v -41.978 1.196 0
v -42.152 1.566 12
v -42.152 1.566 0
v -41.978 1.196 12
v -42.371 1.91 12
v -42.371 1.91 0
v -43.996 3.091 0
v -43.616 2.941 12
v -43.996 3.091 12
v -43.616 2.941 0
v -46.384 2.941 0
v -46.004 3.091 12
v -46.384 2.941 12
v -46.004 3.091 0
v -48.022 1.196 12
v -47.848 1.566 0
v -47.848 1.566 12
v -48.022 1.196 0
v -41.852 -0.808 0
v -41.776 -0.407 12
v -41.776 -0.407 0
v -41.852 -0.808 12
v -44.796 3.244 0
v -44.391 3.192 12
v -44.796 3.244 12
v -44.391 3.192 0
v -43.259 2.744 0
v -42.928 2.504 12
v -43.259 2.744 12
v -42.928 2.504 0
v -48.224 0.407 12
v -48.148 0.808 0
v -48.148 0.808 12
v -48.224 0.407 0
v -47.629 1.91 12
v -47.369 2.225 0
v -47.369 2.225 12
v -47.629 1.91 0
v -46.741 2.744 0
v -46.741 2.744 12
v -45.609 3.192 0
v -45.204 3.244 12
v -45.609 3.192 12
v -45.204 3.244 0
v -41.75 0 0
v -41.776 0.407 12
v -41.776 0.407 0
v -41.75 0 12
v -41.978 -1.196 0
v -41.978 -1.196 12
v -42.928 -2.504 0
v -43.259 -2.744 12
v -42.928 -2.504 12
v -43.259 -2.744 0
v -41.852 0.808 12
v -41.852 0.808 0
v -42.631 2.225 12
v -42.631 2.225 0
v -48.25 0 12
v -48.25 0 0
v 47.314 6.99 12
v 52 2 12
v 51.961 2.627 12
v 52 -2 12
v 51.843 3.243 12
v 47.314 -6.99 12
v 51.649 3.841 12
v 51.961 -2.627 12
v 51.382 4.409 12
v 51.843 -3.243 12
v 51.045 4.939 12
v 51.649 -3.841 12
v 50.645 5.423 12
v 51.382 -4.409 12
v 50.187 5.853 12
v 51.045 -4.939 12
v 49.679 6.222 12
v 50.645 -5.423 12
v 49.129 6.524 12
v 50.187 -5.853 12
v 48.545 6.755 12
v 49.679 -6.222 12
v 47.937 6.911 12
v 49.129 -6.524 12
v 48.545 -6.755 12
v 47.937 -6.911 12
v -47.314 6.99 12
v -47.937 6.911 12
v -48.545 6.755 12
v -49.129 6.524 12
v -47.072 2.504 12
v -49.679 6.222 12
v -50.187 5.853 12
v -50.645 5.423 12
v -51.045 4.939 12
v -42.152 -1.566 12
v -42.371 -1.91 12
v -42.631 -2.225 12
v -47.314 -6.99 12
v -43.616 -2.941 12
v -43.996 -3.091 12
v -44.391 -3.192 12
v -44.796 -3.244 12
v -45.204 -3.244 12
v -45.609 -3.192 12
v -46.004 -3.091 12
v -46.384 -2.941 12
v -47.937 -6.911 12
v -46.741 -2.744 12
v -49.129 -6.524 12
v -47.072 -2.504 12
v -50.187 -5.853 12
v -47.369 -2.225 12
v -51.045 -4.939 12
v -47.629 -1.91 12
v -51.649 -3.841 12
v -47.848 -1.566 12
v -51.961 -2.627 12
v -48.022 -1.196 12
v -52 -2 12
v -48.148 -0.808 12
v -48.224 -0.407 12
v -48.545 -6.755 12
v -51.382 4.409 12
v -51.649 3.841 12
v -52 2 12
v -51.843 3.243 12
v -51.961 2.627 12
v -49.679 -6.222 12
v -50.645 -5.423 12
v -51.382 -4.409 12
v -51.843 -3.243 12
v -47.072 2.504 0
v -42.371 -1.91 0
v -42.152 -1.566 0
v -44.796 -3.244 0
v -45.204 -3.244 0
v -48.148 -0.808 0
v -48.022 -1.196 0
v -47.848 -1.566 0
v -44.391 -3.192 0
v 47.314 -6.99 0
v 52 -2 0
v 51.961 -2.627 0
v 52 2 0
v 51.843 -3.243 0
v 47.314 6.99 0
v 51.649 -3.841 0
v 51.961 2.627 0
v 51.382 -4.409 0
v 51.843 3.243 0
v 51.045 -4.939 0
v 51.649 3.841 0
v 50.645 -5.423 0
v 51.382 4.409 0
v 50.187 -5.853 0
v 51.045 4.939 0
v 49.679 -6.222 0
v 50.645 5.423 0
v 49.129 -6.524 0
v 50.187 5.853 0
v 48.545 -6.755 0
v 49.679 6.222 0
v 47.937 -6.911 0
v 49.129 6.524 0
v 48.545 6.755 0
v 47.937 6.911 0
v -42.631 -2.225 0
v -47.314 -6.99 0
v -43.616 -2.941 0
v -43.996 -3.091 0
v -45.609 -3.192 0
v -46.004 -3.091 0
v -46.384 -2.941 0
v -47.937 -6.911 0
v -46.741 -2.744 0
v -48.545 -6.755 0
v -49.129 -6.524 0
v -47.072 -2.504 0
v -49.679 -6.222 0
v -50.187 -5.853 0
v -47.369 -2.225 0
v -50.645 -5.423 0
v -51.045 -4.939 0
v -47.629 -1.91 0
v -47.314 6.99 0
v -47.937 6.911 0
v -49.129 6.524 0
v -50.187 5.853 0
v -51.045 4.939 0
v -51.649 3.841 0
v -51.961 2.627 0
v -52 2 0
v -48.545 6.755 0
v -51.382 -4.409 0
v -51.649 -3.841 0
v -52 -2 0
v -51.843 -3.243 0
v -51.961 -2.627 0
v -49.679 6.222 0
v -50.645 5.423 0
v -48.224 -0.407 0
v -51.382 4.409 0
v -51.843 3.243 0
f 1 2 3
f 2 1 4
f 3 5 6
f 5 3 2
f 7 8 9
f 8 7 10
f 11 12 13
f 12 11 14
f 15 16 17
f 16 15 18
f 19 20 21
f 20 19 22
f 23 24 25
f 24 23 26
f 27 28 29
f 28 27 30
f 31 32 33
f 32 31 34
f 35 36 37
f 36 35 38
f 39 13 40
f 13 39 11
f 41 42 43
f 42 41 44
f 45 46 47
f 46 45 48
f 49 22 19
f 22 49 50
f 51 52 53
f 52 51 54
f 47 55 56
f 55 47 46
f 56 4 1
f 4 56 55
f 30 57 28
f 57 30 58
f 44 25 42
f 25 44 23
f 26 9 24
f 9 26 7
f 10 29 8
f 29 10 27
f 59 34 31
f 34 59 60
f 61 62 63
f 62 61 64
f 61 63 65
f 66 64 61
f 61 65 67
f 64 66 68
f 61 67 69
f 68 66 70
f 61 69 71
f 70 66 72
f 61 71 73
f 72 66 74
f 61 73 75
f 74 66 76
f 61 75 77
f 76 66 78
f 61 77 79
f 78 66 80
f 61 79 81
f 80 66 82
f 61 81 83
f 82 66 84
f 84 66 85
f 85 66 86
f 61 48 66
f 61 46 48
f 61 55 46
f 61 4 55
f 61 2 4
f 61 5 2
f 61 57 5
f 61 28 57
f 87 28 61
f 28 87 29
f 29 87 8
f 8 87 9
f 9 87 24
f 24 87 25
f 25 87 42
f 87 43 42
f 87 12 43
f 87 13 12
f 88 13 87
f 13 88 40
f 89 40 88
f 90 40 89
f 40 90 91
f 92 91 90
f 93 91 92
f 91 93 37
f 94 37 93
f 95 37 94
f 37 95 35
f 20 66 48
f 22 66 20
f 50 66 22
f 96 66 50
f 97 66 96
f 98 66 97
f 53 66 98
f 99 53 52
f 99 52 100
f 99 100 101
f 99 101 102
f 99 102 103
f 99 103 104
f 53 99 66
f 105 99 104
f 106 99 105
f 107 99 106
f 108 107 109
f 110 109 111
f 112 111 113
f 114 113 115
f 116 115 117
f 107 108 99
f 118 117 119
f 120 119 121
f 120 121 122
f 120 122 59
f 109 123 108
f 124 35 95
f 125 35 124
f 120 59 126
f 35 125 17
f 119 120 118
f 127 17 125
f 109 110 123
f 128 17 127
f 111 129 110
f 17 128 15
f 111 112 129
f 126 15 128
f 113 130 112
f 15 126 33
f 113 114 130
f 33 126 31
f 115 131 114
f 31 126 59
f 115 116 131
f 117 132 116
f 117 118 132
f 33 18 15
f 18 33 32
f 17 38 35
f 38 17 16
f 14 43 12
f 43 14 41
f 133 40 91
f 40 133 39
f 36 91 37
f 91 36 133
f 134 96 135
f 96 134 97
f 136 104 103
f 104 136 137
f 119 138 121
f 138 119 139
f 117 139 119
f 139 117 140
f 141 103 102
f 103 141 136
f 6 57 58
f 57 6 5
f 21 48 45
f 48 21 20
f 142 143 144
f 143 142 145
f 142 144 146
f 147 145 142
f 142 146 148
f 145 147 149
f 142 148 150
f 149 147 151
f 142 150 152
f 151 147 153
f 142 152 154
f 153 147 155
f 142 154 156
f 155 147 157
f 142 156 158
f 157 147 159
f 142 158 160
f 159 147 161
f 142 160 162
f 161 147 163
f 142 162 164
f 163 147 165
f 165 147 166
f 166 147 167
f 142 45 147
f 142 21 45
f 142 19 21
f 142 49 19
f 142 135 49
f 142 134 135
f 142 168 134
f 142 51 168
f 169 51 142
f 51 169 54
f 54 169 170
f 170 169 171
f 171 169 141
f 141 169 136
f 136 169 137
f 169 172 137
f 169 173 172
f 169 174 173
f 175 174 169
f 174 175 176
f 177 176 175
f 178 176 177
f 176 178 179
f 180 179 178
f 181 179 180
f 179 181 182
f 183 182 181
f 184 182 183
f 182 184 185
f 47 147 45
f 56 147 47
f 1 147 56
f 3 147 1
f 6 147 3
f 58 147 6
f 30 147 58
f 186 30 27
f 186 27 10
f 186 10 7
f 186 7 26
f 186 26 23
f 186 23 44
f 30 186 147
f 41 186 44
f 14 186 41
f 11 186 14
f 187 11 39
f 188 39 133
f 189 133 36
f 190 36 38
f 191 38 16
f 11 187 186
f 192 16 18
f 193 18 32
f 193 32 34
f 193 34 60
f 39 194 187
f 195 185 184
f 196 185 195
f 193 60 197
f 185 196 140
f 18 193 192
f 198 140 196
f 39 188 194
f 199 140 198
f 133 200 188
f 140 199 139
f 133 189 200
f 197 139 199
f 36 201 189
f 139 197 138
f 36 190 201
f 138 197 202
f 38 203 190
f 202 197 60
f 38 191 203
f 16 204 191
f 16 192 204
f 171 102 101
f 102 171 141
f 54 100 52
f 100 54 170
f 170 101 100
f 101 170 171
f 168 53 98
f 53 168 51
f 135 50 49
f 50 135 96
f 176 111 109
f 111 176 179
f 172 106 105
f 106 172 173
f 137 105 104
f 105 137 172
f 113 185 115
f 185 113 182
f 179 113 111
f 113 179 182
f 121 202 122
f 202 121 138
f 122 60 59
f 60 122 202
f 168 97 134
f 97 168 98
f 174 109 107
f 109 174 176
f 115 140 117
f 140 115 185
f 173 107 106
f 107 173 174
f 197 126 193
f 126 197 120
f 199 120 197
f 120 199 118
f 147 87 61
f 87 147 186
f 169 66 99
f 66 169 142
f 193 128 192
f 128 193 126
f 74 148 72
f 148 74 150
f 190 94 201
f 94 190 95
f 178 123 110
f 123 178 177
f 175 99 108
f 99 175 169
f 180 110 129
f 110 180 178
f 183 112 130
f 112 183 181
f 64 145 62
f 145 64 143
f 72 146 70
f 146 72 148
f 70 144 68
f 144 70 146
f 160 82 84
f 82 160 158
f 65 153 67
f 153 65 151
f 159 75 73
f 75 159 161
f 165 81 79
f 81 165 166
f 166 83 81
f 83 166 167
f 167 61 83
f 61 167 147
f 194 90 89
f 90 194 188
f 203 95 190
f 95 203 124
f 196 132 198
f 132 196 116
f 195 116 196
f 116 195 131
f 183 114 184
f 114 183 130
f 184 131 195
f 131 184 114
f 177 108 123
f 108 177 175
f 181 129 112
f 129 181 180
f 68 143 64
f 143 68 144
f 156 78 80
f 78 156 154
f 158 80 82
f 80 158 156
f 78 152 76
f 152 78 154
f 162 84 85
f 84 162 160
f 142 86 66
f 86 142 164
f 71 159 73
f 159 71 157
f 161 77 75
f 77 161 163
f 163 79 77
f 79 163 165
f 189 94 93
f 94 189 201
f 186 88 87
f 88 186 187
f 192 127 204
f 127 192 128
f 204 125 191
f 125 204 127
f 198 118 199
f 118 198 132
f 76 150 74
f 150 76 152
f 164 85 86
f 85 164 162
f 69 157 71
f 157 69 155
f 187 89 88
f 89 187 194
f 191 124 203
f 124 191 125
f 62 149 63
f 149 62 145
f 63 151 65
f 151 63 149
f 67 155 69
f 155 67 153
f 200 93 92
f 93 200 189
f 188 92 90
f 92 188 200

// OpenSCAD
$fn = 50;


difference() {
	union() {
		hull() {
			translate(v = [-47.0000000000, 2.0000000000, 0]) {
				cylinder(h = 12, r = 5);
			}
			translate(v = [47.0000000000, 2.0000000000, 0]) {
				cylinder(h = 12, r = 5);
			}
			translate(v = [-47.0000000000, -2.0000000000, 0]) {
				cylinder(h = 12, r = 5);
			}
			translate(v = [47.0000000000, -2.0000000000, 0]) {
				cylinder(h = 12, r = 5);
			}
		}
	}
	union() {
		translate(v = [-45.0000000000, 0.0000000000, 0]) {
			cylinder(h = 12, r = 3.2500000000);
		}
		translate(v = [-45.0000000000, 0.0000000000, 0]) {
			cylinder(h = 12, r = 1.8000000000);
		}
		translate(v = [-45.0000000000, 0.0000000000, 0]) {
			cylinder(h = 12, r = 1.8000000000);
		}
		translate(v = [-45.0000000000, 0.0000000000, 0]) {
			cylinder(h = 12, r = 1.8000000000);
		}
	}
}
